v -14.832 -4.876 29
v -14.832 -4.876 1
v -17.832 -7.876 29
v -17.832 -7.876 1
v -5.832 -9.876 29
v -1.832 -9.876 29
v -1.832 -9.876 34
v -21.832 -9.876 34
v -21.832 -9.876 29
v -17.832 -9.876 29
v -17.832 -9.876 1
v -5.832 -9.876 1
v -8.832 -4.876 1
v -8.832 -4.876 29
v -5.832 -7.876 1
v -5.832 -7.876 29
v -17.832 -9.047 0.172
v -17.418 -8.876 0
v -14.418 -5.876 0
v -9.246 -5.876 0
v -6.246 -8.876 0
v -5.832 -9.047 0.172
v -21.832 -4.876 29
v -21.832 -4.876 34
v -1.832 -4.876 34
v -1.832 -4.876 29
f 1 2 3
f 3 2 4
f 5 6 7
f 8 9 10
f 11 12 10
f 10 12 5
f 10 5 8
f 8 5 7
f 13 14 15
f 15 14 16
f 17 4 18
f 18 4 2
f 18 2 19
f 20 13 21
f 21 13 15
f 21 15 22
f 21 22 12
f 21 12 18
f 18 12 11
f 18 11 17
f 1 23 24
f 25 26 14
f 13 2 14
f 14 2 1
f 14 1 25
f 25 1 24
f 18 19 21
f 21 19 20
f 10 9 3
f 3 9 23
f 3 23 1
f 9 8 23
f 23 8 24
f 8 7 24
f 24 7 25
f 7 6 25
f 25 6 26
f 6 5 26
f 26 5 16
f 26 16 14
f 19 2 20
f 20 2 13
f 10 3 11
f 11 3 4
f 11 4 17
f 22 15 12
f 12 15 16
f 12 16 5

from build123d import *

# Parameters (mm, degrees)
EXTRUDE_1_DEPTH     = 29
EXTRUDE_2_DEPTH     = 5
CHAMFER_1_SIZE      = 1
SKETCH_4_W          = 2
SKETCH_4_H          = 3.10400654
SKETCH_4_H_2        = 3.326169865
CUT_EXTRUDE_1_DEPTH = 30


with BuildPart() as part:
    # 草图1 → 凸台-拉伸1 (new body)
    with BuildSketch(Plane.XY):
        Polygon((-19.832016219, -9.875726629), (-3.832016219, -9.875726629), (-8.832016219, -4.875726629), (-14.832016219, -4.875726629), align=None)
    extrude(amount=EXTRUDE_1_DEPTH)

    # 草图3 → 凸台-拉伸2 (add)
    with BuildSketch(Plane.XZ.offset(9.875726629)):
        Polygon((-11.832016219, 29), (-1.832016219, 29), (-1.832016219, 34), (-21.832016219, 34), (-21.832016219, 29), align=None)
    extrude(amount=-EXTRUDE_2_DEPTH)

    # 倒角1
    chamfer_1_edges = [part.edges().sort_by_distance(p)[0] for p in [
        (-11.832016219, -4.875726629, 0),
        (-6.332016219, -7.375726629, 0),
        (-11.832016219, -9.875726629, 0),
        (-17.332016219, -7.375726629, 0),
    ]]
    chamfer(chamfer_1_edges, length=CHAMFER_1_SIZE)

    # 草图4 → 切除-拉伸1 (cut, through all)
    with BuildSketch(Plane(origin=(0, 0, 29), x_dir=(-1, 0, 0), z_dir=(0, 0, -1))):
        with Locations((4.832016219, -8.323723359)):
            Rectangle(SKETCH_4_W, SKETCH_4_H)
        with Locations((18.832016219, -8.212641697)):
            Rectangle(SKETCH_4_W, SKETCH_4_H_2)
    extrude(amount=CUT_EXTRUDE_1_DEPTH, mode=Mode.SUBTRACT)


solid = part.part
